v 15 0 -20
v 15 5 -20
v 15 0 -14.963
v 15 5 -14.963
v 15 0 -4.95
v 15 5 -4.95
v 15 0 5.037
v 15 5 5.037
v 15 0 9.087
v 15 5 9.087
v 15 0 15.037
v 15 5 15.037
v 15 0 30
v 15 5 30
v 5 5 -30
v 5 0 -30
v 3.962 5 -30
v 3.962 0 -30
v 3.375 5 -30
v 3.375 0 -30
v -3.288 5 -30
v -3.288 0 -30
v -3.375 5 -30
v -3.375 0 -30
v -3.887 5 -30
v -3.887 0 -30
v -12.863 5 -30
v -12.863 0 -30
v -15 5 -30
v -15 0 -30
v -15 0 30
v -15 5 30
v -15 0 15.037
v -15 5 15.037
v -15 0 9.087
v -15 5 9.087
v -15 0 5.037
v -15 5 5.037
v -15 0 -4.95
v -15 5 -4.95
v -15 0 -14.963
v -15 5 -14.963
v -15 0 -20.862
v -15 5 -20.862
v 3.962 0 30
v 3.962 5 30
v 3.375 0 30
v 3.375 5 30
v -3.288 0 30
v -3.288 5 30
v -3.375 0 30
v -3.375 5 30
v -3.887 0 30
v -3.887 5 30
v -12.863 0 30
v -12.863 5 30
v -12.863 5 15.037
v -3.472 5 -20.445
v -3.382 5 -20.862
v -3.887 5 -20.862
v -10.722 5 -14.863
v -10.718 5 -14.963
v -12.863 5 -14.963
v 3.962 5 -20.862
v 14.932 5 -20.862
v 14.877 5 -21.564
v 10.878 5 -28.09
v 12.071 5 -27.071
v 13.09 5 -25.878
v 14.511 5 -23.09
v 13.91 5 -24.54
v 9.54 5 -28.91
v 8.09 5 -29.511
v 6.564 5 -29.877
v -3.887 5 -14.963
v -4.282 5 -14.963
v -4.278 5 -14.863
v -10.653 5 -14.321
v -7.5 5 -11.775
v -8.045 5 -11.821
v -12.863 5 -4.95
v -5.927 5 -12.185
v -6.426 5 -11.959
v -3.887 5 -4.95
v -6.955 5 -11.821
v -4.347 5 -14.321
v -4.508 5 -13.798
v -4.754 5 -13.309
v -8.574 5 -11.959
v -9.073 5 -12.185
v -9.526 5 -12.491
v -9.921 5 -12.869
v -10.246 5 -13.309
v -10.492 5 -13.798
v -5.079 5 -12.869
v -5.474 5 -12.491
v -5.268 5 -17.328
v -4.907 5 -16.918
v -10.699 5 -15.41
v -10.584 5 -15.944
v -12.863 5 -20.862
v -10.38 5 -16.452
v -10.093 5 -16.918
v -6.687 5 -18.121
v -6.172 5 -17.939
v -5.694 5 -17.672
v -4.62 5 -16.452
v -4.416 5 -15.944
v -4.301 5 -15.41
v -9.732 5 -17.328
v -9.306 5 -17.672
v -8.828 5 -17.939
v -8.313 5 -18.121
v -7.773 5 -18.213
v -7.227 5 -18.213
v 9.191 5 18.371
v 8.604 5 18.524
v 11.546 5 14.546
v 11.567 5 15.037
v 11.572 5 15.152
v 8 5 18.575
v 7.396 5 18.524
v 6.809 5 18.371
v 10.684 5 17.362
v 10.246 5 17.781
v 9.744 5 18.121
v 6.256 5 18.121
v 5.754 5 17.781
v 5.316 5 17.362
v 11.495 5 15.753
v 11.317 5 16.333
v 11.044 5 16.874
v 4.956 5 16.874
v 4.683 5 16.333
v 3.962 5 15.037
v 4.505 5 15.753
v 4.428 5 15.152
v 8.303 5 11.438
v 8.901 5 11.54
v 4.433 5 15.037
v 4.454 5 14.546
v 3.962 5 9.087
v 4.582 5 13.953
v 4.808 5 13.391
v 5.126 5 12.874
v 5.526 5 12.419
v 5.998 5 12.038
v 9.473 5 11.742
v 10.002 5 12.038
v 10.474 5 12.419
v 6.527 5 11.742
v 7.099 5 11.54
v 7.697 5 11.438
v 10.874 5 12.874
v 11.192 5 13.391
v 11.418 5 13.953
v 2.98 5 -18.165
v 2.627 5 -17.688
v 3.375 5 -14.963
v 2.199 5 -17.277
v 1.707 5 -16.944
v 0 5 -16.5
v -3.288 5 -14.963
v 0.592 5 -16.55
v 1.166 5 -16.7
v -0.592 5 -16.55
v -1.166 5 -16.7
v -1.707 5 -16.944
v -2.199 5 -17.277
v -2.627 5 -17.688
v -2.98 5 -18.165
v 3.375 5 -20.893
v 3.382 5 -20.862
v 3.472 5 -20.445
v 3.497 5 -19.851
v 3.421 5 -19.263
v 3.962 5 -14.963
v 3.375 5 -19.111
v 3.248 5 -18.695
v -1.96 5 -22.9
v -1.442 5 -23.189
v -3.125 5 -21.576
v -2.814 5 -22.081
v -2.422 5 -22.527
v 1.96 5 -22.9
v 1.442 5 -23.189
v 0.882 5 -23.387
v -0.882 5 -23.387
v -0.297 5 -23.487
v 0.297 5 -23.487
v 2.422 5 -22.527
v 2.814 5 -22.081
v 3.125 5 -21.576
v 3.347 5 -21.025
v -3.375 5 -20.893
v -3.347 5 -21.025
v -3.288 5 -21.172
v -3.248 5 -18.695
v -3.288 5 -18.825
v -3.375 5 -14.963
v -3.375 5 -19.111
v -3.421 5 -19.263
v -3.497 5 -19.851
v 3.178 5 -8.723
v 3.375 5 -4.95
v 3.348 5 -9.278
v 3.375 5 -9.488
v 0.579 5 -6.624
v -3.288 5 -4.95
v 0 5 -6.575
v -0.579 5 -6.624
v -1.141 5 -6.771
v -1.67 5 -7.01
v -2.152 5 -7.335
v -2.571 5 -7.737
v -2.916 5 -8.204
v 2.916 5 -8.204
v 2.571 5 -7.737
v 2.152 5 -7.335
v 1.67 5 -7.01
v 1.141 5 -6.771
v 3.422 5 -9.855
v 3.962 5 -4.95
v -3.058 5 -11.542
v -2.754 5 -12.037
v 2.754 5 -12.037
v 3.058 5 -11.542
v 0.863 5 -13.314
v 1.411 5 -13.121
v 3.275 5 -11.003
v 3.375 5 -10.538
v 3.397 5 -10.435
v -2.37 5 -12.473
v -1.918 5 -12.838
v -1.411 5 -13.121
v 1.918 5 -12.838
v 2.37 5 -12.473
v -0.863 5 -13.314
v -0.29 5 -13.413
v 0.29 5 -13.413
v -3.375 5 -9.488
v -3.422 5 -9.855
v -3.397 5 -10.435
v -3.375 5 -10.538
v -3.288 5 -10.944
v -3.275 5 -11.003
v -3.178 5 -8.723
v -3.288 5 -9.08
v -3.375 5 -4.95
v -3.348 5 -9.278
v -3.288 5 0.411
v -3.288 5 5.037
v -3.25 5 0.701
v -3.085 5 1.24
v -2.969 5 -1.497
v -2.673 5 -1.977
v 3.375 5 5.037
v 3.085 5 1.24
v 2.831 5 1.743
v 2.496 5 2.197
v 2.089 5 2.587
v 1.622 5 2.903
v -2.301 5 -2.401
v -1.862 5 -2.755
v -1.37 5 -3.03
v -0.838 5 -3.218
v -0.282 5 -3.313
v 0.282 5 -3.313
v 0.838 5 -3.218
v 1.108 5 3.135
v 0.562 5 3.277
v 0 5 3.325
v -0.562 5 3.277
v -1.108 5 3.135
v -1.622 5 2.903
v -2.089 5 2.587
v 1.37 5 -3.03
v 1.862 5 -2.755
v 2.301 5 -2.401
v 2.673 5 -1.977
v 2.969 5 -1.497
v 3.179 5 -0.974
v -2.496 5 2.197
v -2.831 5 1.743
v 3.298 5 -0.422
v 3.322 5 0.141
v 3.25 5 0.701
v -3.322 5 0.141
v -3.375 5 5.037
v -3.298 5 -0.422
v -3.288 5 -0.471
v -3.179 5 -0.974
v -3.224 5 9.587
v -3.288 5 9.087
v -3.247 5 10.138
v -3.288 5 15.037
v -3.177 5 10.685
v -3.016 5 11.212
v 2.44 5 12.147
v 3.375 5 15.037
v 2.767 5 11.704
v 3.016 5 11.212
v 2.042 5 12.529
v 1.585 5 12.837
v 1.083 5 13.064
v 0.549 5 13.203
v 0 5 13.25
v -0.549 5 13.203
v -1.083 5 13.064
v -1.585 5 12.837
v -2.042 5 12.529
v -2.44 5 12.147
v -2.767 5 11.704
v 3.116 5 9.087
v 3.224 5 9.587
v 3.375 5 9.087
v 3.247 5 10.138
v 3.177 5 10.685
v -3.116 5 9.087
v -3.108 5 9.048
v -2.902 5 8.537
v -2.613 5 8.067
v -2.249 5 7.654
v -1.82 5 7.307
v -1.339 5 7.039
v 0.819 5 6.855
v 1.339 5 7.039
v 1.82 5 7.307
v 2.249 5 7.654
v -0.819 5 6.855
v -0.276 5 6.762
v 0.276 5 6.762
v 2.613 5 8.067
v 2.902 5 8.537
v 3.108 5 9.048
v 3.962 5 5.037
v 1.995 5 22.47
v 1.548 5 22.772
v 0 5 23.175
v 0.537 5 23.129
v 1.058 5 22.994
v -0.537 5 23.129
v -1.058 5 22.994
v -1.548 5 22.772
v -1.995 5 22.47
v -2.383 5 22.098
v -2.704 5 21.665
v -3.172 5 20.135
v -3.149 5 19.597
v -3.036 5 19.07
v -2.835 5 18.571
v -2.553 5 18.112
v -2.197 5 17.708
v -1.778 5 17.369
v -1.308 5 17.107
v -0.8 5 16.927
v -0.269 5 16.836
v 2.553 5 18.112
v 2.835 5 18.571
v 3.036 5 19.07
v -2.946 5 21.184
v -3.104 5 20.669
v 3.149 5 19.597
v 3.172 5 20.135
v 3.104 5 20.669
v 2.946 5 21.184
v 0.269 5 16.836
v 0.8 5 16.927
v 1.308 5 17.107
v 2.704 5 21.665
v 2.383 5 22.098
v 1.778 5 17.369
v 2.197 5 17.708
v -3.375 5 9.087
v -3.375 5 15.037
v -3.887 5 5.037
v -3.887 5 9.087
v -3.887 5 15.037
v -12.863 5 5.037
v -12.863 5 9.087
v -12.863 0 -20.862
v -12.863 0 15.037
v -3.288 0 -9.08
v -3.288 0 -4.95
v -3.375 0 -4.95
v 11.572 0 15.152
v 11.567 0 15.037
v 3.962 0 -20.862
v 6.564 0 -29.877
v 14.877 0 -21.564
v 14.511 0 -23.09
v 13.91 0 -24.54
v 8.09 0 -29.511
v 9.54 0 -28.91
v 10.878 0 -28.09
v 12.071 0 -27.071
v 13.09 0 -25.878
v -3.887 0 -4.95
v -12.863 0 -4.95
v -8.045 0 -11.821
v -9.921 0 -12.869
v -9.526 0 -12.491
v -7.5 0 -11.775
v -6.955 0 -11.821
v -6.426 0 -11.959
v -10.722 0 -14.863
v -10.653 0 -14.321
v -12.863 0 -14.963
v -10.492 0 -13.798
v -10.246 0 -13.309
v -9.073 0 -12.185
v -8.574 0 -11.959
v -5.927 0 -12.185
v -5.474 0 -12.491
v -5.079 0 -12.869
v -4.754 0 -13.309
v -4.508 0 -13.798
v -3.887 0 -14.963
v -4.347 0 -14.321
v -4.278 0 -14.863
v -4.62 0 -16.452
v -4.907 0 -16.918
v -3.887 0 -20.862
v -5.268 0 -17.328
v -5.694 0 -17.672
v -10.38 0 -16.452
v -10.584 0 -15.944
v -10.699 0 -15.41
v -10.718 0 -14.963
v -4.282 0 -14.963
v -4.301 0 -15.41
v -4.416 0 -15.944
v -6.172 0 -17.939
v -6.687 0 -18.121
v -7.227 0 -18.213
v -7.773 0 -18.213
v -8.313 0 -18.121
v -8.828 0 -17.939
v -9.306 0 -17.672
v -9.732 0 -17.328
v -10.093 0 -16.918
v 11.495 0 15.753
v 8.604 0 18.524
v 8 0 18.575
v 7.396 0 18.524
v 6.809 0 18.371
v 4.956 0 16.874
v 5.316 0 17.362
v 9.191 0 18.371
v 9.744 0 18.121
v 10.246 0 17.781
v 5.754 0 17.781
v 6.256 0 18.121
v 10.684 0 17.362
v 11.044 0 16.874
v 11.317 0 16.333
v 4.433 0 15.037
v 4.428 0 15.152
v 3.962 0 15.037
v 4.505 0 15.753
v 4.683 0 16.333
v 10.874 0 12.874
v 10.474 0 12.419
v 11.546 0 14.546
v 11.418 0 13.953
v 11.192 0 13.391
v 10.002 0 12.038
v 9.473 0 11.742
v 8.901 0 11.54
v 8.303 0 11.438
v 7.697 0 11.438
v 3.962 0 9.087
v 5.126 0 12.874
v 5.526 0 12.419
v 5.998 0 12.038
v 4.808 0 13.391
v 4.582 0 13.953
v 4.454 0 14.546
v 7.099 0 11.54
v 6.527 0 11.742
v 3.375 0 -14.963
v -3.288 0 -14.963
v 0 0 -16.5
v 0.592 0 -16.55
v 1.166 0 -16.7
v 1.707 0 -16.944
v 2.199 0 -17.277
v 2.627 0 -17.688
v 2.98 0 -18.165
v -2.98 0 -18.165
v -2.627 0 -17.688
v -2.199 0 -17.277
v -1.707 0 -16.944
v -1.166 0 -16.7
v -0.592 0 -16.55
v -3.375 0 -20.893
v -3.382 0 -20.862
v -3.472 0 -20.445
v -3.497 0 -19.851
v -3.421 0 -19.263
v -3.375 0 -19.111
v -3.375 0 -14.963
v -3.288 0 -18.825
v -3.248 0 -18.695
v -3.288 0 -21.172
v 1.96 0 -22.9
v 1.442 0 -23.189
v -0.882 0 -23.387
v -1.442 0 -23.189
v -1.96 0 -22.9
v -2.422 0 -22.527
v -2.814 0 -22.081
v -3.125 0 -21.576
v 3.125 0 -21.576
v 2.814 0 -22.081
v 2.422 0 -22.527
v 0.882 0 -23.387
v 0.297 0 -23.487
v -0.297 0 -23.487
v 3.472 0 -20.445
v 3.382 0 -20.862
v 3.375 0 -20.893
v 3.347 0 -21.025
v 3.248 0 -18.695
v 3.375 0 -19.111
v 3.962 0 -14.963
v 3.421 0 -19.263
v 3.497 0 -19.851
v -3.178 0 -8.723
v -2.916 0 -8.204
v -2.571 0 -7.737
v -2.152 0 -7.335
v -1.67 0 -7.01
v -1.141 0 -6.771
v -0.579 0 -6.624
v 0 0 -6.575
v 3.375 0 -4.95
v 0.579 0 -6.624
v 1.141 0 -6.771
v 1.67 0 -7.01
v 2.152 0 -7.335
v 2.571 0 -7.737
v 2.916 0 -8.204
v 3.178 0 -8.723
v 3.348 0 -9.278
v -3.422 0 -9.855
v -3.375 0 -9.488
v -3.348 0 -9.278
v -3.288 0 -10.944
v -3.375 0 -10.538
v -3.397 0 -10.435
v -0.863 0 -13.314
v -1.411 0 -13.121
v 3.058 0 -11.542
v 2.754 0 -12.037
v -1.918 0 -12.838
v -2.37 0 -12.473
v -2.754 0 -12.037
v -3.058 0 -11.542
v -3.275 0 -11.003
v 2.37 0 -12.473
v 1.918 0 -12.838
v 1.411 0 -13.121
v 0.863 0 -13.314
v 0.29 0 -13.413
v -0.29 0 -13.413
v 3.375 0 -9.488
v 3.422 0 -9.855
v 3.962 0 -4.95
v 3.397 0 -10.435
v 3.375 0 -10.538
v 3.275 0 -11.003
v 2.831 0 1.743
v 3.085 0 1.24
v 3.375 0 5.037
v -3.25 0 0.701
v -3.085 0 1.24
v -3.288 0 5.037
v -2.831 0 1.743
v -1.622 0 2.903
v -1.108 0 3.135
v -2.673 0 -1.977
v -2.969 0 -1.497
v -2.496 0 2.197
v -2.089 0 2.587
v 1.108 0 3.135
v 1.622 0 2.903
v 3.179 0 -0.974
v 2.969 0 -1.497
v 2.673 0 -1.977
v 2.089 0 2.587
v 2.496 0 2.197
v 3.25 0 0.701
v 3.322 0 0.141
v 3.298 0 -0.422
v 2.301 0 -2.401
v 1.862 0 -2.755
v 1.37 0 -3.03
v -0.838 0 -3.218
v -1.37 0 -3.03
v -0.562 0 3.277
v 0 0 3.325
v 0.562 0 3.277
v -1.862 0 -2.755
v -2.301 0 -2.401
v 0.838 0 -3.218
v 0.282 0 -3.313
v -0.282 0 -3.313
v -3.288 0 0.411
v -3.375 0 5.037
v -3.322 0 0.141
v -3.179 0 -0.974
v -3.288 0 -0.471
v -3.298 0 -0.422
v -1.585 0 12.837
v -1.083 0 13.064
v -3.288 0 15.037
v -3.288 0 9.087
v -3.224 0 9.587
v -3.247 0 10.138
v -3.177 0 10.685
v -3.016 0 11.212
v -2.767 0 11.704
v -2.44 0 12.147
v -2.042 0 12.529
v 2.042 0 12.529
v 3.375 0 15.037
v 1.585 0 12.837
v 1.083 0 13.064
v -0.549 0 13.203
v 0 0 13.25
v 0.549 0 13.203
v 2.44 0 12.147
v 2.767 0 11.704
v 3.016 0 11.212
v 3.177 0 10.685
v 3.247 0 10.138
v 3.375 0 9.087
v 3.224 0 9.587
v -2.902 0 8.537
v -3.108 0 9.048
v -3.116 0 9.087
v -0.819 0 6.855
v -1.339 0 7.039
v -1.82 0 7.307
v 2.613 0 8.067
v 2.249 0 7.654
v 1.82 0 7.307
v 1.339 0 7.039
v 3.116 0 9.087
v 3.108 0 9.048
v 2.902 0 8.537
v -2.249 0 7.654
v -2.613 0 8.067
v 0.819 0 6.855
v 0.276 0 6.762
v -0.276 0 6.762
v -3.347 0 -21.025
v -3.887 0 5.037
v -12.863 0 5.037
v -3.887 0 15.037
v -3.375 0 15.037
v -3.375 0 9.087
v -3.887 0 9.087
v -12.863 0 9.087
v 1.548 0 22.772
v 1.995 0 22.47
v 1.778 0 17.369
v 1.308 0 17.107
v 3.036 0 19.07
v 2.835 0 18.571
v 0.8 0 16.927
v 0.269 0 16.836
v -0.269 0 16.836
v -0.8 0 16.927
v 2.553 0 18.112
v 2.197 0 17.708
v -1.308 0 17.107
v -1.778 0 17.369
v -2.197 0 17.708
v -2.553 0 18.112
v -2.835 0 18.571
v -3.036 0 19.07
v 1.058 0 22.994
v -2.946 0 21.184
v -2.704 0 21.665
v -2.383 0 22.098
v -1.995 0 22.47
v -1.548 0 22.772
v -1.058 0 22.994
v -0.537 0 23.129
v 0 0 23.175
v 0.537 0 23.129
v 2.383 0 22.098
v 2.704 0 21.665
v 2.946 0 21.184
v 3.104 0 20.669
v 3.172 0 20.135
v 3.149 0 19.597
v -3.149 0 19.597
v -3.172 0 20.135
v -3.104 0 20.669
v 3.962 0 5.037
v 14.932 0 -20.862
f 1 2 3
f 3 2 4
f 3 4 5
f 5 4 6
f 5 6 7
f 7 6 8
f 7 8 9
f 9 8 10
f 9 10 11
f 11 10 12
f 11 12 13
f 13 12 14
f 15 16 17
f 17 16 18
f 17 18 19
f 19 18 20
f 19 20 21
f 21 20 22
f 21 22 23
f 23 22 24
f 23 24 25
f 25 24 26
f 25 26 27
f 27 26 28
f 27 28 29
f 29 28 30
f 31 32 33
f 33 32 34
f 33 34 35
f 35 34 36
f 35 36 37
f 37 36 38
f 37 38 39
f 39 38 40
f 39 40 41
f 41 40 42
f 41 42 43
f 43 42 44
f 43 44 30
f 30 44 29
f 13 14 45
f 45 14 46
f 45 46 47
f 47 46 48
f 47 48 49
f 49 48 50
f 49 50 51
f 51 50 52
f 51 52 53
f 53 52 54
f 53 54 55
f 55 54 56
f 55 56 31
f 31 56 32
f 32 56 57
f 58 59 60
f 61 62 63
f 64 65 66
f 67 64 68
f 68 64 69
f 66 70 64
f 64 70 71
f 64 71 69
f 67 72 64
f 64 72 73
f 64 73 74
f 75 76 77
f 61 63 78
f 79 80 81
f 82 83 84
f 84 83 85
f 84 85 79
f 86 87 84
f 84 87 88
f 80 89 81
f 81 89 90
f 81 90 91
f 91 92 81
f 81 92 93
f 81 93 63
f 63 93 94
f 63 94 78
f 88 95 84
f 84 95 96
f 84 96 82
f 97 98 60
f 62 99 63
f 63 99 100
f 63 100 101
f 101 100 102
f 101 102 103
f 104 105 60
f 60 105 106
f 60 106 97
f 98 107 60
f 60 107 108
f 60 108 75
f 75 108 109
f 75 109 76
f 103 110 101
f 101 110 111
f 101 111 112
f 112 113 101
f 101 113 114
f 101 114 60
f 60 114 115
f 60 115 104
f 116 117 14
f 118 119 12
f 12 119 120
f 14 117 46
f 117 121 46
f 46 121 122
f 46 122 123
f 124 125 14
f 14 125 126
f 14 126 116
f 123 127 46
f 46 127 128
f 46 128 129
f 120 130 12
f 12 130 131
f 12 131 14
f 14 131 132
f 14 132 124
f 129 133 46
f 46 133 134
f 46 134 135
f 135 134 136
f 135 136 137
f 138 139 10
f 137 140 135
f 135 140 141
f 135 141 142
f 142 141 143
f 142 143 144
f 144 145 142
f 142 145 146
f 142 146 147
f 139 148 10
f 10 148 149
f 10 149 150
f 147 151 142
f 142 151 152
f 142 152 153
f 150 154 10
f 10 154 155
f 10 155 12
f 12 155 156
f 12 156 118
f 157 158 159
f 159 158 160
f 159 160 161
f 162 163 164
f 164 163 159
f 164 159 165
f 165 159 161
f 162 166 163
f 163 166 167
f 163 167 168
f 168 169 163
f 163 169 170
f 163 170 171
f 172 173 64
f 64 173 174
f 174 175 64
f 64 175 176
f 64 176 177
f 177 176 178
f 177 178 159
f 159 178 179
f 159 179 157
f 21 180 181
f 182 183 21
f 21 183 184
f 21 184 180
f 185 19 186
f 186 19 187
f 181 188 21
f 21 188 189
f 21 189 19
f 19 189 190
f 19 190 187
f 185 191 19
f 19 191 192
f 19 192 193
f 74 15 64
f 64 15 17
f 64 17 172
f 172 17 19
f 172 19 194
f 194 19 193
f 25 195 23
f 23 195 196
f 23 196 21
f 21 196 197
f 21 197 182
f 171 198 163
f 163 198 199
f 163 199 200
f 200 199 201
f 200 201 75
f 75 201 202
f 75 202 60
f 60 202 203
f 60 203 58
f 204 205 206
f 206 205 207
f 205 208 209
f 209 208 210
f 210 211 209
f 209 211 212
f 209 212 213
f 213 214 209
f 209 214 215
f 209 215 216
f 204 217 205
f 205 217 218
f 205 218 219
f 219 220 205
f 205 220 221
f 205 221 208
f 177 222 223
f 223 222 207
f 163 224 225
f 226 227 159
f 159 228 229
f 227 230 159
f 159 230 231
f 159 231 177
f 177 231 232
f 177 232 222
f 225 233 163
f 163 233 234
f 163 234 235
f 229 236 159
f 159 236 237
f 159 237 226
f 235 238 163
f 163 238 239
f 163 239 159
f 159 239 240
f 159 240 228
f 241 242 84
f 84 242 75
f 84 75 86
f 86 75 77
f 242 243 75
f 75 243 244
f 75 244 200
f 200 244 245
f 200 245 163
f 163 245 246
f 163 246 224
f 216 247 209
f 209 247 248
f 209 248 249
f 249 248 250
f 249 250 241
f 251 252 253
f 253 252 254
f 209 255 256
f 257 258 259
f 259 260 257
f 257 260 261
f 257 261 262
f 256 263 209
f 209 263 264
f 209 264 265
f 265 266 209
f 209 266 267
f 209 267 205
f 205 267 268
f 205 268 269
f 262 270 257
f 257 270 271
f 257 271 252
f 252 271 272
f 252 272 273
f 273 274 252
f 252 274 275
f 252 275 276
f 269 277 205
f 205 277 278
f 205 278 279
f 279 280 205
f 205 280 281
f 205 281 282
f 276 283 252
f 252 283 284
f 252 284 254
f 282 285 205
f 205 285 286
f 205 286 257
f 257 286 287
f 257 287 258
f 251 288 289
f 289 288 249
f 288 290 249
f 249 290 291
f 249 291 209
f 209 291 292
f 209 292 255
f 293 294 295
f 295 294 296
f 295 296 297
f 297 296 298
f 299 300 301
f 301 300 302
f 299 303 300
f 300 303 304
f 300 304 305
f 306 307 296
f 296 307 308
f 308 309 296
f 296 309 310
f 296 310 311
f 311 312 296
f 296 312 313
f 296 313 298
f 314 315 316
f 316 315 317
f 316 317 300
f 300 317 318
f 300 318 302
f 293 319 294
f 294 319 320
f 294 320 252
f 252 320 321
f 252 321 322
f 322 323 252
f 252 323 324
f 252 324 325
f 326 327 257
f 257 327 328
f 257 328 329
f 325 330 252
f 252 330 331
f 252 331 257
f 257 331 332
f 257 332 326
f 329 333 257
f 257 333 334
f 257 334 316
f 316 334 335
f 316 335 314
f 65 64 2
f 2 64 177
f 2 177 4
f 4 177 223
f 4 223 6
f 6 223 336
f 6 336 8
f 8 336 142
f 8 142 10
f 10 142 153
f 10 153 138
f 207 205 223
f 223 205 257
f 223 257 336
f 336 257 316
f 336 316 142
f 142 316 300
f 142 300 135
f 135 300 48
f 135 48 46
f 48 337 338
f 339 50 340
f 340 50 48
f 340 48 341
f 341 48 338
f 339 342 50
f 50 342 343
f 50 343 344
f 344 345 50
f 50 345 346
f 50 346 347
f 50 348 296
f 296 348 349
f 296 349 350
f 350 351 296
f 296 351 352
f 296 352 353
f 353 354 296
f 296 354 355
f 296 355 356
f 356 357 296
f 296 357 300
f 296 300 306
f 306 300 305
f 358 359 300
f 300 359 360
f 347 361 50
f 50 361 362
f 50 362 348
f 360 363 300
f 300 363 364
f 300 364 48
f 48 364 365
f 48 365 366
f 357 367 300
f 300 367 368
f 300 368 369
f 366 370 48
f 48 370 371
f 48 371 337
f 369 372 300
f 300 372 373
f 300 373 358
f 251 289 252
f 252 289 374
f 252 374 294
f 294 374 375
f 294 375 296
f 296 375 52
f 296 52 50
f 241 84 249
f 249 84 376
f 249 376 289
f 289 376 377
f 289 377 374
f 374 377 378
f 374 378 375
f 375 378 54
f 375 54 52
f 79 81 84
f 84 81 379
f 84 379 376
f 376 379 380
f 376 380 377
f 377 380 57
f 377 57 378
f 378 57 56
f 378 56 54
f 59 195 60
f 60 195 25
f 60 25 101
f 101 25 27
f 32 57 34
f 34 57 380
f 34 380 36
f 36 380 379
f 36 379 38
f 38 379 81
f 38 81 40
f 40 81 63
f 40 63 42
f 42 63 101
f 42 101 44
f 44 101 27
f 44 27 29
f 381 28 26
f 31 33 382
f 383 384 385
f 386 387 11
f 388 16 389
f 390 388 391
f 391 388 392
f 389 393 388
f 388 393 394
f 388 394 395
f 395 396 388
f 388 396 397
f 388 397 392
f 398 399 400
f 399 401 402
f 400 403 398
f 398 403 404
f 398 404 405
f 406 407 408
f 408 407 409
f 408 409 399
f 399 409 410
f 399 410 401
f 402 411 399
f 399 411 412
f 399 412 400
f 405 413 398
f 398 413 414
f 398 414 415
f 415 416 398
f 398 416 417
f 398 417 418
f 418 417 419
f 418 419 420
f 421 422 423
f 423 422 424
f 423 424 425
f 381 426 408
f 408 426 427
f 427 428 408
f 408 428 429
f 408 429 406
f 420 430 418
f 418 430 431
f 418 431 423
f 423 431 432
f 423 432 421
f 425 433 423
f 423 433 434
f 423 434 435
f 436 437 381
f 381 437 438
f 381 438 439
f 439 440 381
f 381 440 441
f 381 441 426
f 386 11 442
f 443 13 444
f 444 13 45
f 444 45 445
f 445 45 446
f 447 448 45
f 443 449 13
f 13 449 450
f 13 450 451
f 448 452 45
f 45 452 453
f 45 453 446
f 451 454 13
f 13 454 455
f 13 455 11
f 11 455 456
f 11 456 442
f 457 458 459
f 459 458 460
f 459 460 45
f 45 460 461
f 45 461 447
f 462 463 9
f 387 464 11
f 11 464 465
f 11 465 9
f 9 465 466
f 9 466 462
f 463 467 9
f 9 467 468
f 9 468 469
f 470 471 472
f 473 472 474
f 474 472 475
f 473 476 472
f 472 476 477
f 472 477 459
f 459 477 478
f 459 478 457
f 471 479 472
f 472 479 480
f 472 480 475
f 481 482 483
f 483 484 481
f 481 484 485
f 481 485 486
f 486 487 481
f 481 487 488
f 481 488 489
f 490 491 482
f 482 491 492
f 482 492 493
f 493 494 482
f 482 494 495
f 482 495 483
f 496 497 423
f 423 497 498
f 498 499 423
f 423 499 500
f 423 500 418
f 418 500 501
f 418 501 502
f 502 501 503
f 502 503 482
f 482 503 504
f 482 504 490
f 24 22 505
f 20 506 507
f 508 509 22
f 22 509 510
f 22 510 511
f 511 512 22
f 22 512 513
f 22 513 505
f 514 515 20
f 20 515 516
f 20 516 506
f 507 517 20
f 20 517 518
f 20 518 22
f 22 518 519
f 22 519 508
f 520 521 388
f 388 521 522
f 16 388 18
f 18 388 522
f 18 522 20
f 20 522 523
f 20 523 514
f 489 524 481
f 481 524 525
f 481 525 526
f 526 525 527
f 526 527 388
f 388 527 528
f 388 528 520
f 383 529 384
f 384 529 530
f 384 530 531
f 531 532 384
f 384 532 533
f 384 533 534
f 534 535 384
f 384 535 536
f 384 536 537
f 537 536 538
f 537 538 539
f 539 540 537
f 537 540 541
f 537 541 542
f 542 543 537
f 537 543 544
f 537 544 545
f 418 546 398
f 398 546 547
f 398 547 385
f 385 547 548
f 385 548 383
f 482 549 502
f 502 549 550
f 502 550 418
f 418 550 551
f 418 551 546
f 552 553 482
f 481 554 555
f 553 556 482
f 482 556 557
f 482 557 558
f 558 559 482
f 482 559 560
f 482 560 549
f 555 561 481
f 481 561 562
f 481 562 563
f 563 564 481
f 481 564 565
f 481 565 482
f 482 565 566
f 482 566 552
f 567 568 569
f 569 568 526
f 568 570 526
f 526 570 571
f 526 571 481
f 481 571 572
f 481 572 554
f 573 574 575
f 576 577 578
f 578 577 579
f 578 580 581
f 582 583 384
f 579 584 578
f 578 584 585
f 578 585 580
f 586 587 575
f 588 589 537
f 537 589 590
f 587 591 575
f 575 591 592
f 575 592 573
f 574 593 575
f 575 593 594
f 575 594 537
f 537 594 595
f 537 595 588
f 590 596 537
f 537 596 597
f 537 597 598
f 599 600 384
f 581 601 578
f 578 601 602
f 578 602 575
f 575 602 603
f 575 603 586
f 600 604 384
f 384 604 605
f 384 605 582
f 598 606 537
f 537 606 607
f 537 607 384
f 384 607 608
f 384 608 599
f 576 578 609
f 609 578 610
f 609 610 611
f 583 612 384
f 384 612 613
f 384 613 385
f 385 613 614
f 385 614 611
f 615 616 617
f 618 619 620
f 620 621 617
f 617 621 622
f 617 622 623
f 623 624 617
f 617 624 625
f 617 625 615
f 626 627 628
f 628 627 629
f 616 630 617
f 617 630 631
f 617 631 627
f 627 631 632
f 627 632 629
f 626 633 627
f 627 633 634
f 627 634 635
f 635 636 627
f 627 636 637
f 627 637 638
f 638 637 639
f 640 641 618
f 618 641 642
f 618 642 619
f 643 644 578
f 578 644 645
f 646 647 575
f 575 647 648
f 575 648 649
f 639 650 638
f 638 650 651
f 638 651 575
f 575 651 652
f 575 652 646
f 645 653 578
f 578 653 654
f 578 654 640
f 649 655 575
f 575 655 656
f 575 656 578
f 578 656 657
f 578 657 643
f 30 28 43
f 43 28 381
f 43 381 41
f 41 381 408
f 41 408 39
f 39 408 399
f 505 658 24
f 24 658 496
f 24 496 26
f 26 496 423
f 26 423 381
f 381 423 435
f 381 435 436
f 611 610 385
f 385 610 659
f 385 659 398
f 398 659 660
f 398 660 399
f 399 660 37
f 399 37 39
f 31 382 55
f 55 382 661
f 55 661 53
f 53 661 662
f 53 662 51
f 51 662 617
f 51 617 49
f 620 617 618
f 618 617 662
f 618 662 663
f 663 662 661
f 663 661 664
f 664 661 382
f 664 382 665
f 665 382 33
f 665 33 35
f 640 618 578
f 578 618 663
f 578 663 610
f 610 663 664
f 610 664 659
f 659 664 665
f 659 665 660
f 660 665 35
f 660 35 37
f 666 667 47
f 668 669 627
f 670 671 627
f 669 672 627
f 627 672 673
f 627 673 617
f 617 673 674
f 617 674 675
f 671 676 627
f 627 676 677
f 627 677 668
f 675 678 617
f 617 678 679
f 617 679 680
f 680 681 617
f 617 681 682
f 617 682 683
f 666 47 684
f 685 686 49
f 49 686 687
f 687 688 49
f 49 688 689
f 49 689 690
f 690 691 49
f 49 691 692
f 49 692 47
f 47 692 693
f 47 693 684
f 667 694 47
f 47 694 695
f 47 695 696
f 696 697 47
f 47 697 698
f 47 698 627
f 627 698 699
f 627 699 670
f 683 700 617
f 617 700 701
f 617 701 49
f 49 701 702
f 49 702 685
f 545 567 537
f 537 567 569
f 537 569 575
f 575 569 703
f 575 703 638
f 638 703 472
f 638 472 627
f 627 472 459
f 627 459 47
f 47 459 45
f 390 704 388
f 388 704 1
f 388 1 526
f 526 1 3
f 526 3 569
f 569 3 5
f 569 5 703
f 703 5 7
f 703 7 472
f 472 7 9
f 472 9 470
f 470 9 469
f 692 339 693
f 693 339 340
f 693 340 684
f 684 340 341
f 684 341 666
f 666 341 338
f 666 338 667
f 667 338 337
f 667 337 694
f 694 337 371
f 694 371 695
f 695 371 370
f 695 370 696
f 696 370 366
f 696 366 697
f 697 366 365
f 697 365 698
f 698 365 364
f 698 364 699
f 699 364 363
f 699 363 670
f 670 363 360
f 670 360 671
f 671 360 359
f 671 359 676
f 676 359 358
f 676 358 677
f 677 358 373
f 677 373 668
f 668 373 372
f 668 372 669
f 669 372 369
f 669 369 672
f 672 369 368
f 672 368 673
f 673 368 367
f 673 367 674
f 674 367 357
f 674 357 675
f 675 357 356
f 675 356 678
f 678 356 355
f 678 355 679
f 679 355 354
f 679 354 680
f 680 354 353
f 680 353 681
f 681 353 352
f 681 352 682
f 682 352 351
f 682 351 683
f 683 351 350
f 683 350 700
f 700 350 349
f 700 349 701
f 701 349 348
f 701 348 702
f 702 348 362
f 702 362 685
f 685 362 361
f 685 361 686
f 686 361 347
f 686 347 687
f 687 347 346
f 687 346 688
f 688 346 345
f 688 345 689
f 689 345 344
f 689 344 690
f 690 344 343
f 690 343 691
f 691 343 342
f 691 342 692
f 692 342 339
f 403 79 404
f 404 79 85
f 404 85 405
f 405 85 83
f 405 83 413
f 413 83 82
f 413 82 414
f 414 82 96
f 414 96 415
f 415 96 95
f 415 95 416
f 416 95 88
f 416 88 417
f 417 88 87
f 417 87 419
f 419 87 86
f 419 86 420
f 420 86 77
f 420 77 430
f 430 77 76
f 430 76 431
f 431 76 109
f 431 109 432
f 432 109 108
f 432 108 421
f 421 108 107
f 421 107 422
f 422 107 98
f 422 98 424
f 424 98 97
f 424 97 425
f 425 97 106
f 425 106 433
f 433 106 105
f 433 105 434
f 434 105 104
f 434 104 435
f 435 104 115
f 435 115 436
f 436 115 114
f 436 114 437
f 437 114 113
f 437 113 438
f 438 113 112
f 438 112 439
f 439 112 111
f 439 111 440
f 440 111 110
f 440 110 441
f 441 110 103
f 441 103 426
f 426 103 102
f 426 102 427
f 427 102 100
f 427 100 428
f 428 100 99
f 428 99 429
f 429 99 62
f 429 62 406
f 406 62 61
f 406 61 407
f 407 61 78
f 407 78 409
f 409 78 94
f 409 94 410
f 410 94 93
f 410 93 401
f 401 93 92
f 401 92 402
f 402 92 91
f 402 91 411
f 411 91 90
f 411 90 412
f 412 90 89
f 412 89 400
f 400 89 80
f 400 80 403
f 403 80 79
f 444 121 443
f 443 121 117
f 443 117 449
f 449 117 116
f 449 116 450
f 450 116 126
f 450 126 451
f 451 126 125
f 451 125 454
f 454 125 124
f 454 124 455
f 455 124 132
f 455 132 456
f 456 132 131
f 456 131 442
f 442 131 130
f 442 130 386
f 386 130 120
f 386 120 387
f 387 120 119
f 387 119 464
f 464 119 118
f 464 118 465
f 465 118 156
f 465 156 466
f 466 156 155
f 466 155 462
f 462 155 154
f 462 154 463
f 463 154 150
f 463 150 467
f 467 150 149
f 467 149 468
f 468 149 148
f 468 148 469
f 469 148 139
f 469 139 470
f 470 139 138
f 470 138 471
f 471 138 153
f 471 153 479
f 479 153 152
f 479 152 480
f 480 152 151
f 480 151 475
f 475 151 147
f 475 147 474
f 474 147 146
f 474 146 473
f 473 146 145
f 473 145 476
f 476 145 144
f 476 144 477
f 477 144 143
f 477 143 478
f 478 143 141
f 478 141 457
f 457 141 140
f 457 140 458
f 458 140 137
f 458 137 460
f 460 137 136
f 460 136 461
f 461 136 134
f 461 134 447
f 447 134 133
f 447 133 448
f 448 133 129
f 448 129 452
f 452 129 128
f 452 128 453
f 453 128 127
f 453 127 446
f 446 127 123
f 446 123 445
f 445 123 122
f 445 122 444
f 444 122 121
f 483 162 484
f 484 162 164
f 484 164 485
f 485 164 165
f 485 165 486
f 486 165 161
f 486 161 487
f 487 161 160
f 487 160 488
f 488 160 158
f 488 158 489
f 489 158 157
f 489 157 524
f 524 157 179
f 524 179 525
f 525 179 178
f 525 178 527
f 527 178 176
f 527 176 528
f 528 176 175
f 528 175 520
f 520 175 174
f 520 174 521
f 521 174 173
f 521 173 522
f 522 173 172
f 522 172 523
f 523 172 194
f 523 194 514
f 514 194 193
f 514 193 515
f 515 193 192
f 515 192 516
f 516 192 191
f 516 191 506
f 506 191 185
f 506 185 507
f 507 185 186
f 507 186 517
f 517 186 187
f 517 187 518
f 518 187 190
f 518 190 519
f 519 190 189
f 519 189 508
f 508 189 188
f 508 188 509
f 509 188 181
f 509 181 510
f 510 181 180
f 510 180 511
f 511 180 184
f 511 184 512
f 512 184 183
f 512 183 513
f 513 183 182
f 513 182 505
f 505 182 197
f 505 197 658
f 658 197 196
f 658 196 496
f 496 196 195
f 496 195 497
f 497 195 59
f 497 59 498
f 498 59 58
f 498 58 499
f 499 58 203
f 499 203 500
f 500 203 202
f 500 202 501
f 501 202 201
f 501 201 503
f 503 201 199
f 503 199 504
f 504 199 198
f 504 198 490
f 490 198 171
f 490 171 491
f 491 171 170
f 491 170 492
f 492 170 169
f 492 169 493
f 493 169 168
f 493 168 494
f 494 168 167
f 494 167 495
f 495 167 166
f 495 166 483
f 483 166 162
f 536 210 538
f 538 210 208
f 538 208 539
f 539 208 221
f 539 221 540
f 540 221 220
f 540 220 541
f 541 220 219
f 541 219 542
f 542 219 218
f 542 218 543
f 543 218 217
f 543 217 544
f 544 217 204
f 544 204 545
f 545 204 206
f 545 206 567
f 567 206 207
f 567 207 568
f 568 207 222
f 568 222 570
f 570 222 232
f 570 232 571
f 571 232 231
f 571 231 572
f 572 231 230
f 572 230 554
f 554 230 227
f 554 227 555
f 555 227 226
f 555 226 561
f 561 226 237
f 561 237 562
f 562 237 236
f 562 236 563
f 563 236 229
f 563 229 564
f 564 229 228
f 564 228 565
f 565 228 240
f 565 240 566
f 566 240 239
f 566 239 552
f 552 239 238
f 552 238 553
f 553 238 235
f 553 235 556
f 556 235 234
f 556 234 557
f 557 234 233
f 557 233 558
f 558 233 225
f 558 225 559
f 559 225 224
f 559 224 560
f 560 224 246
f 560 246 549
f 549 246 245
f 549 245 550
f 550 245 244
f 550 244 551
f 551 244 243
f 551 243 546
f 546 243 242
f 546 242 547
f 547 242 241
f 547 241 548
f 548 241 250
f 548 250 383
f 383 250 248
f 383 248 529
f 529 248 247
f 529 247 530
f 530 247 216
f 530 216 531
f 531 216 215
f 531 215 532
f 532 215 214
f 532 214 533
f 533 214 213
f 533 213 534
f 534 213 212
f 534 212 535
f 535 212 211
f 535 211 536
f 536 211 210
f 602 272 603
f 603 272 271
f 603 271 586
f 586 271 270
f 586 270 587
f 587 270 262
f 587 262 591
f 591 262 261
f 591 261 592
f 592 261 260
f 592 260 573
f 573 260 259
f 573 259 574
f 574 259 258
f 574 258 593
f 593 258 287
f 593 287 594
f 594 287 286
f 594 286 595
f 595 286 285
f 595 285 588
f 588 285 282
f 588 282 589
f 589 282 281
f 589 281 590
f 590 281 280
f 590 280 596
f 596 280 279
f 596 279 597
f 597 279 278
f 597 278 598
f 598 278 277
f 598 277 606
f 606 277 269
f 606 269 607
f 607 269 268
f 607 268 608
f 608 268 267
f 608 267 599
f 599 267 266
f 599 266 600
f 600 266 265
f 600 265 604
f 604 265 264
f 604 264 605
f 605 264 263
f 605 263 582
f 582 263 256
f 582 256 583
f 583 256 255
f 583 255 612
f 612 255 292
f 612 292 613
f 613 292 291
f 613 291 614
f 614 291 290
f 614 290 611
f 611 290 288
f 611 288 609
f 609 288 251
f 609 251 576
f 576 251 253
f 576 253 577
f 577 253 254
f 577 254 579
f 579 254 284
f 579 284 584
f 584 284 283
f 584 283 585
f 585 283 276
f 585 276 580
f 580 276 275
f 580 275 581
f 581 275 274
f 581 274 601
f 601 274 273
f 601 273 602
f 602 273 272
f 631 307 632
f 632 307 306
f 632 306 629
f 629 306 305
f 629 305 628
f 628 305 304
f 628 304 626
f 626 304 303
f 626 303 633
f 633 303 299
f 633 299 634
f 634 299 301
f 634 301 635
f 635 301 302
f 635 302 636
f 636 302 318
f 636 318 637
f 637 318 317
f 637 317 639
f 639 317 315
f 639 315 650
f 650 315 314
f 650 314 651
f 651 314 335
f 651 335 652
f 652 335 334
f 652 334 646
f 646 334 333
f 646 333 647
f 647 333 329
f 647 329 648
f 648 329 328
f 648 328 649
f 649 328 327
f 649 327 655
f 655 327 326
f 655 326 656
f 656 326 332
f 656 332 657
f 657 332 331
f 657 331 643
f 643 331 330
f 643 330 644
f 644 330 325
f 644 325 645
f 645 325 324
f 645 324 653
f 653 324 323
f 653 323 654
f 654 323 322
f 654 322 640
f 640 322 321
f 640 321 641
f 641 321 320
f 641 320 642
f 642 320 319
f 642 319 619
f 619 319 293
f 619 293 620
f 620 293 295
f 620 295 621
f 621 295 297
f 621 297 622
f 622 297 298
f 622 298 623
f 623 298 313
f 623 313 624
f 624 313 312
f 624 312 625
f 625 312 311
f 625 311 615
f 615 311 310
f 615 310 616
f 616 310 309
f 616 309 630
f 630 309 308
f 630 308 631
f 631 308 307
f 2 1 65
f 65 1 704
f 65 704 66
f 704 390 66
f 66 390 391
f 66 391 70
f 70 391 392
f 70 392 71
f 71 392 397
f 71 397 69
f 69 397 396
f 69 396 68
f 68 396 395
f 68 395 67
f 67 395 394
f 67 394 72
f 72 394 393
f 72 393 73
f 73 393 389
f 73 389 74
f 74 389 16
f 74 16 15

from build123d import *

# Parameters (mm, degrees)
ESQUISSE1_W             = 30
ESQUISSE1_H             = 60
BOSS_EXTRU_1_DEPTH      = 5
ENL_V_MAT_EXTRU_1_REACH = 35.912
ESQUISSE2_R             = 3.175
ESQUISSE2_R_2           = 3.25
ESQUISSE2_R_3           = 3.325
ESQUISSE2_R_4           = 3.425
ESQUISSE2_R_5           = 3.5
ESQUISSE2_R_6           = 3.575
ESQUISSE2_R_7           = 3.225
CONG_1_R                = 10


with BuildPart() as part:
    # Esquisse1 → Boss.-Extru.1 (new body)
    with BuildSketch(Plane(origin=(0, 0, 0), x_dir=(1, 0, 0), z_dir=(0, 1, 0))):
        Rectangle(ESQUISSE1_W, ESQUISSE1_H)
    extrude(amount=BOSS_EXTRU_1_DEPTH)

    # Esquisse2 → Enlèv. mat.-Extru.1 (cut, up to next)
    with BuildSketch(Plane(origin=(0, 5, 0), x_dir=(1, 0, 0), z_dir=(0, 1, 0)), mode=Mode.PRIVATE) as enl_v_mat_extru_1_sk1:
        with Locations(Location((0, -20, 0), (0, 0, 270))):
            Circle(ESQUISSE2_R)
    enl_v_mat_extru_1_tool1 = extrude(enl_v_mat_extru_1_sk1.sketch, amount=-ENL_V_MAT_EXTRU_1_REACH, mode=Mode.PRIVATE) & part.part
    # Esquisse2 → Enlèv. mat.-Extru.1 (cut, up to next)
    with BuildSketch(Plane(origin=(0, 5, 0), x_dir=(1, 0, 0), z_dir=(0, 1, 0)), mode=Mode.PRIVATE) as enl_v_mat_extru_1_sk2:
        with Locations(Location((0, -10, 0), (0, 0, 270))):
            Circle(ESQUISSE2_R_2)
    enl_v_mat_extru_1_tool2 = extrude(enl_v_mat_extru_1_sk2.sketch, amount=-ENL_V_MAT_EXTRU_1_REACH, mode=Mode.PRIVATE) & part.part
    # Esquisse2 → Enlèv. mat.-Extru.1 (cut, up to next)
    with BuildSketch(Plane(origin=(0, 5, 0), x_dir=(1, 0, 0), z_dir=(0, 1, 0)), mode=Mode.PRIVATE) as enl_v_mat_extru_1_sk3:
        with Locations(Location((0, 0, 0), (0, 0, 270))):
            Circle(ESQUISSE2_R_3)
    enl_v_mat_extru_1_tool3 = extrude(enl_v_mat_extru_1_sk3.sketch, amount=-ENL_V_MAT_EXTRU_1_REACH, mode=Mode.PRIVATE) & part.part
    # Esquisse2 → Enlèv. mat.-Extru.1 (cut, up to next)
    with BuildSketch(Plane(origin=(0, 5, 0), x_dir=(1, 0, 0), z_dir=(0, 1, 0)), mode=Mode.PRIVATE) as enl_v_mat_extru_1_sk4:
        with Locations(Location((0, 10, 0), (0, 0, 270))):
            Circle(ESQUISSE2_R_4)
    enl_v_mat_extru_1_tool4 = extrude(enl_v_mat_extru_1_sk4.sketch, amount=-ENL_V_MAT_EXTRU_1_REACH, mode=Mode.PRIVATE) & part.part
    # Esquisse2 → Enlèv. mat.-Extru.1 (cut, up to next)
    with BuildSketch(Plane(origin=(0, 5, 0), x_dir=(1, 0, 0), z_dir=(0, 1, 0)), mode=Mode.PRIVATE) as enl_v_mat_extru_1_sk5:
        with Locations(Location((0, 20, 0), (0, 0, 270))):
            Circle(ESQUISSE2_R_5)
    enl_v_mat_extru_1_tool5 = extrude(enl_v_mat_extru_1_sk5.sketch, amount=-ENL_V_MAT_EXTRU_1_REACH, mode=Mode.PRIVATE) & part.part
    # Esquisse2 → Enlèv. mat.-Extru.1 (cut, up to next)
    with BuildSketch(Plane(origin=(0, 5, 0), x_dir=(1, 0, 0), z_dir=(0, 1, 0)), mode=Mode.PRIVATE) as enl_v_mat_extru_1_sk6:
        with Locations(Location((8, -15, 0), (0, 0, 270))):
            Circle(ESQUISSE2_R_6)
    enl_v_mat_extru_1_tool6 = extrude(enl_v_mat_extru_1_sk6.sketch, amount=-ENL_V_MAT_EXTRU_1_REACH, mode=Mode.PRIVATE) & part.part
    # Esquisse2 → Enlèv. mat.-Extru.1 (cut, up to next)
    with BuildSketch(Plane(origin=(0, 5, 0), x_dir=(1, 0, 0), z_dir=(0, 1, 0)), mode=Mode.PRIVATE) as enl_v_mat_extru_1_sk7:
        with Locations(Location((-7.5, 15, 0), (0, 0, 270))):
            Circle(ESQUISSE2_R_7)
    enl_v_mat_extru_1_tool7 = extrude(enl_v_mat_extru_1_sk7.sketch, amount=-ENL_V_MAT_EXTRU_1_REACH, mode=Mode.PRIVATE) & part.part
    add(enl_v_mat_extru_1_tool1.solids().sort_by_distance((0, 5, 20))[0], mode=Mode.SUBTRACT)
    add(enl_v_mat_extru_1_tool2.solids().sort_by_distance((0, 5, 10))[0], mode=Mode.SUBTRACT)
    add(enl_v_mat_extru_1_tool3.solids().sort_by_distance((0, 5, 0))[0], mode=Mode.SUBTRACT)
    add(enl_v_mat_extru_1_tool4.solids().sort_by_distance((0, 5, -10))[0], mode=Mode.SUBTRACT)
    add(enl_v_mat_extru_1_tool5.solids().sort_by_distance((0, 5, -20))[0], mode=Mode.SUBTRACT)
    add(enl_v_mat_extru_1_tool6.solids().sort_by_distance((8, 5, 15))[0], mode=Mode.SUBTRACT)
    add(enl_v_mat_extru_1_tool7.solids().sort_by_distance((-7.5, 5, -15))[0], mode=Mode.SUBTRACT)

    # Congé1
    cong_1_edges = [part.edges().sort_by_distance(p)[0] for p in [
        (15, 2.5, -30),
    ]]
    fillet(cong_1_edges, radius=CONG_1_R)


solid = part.part
